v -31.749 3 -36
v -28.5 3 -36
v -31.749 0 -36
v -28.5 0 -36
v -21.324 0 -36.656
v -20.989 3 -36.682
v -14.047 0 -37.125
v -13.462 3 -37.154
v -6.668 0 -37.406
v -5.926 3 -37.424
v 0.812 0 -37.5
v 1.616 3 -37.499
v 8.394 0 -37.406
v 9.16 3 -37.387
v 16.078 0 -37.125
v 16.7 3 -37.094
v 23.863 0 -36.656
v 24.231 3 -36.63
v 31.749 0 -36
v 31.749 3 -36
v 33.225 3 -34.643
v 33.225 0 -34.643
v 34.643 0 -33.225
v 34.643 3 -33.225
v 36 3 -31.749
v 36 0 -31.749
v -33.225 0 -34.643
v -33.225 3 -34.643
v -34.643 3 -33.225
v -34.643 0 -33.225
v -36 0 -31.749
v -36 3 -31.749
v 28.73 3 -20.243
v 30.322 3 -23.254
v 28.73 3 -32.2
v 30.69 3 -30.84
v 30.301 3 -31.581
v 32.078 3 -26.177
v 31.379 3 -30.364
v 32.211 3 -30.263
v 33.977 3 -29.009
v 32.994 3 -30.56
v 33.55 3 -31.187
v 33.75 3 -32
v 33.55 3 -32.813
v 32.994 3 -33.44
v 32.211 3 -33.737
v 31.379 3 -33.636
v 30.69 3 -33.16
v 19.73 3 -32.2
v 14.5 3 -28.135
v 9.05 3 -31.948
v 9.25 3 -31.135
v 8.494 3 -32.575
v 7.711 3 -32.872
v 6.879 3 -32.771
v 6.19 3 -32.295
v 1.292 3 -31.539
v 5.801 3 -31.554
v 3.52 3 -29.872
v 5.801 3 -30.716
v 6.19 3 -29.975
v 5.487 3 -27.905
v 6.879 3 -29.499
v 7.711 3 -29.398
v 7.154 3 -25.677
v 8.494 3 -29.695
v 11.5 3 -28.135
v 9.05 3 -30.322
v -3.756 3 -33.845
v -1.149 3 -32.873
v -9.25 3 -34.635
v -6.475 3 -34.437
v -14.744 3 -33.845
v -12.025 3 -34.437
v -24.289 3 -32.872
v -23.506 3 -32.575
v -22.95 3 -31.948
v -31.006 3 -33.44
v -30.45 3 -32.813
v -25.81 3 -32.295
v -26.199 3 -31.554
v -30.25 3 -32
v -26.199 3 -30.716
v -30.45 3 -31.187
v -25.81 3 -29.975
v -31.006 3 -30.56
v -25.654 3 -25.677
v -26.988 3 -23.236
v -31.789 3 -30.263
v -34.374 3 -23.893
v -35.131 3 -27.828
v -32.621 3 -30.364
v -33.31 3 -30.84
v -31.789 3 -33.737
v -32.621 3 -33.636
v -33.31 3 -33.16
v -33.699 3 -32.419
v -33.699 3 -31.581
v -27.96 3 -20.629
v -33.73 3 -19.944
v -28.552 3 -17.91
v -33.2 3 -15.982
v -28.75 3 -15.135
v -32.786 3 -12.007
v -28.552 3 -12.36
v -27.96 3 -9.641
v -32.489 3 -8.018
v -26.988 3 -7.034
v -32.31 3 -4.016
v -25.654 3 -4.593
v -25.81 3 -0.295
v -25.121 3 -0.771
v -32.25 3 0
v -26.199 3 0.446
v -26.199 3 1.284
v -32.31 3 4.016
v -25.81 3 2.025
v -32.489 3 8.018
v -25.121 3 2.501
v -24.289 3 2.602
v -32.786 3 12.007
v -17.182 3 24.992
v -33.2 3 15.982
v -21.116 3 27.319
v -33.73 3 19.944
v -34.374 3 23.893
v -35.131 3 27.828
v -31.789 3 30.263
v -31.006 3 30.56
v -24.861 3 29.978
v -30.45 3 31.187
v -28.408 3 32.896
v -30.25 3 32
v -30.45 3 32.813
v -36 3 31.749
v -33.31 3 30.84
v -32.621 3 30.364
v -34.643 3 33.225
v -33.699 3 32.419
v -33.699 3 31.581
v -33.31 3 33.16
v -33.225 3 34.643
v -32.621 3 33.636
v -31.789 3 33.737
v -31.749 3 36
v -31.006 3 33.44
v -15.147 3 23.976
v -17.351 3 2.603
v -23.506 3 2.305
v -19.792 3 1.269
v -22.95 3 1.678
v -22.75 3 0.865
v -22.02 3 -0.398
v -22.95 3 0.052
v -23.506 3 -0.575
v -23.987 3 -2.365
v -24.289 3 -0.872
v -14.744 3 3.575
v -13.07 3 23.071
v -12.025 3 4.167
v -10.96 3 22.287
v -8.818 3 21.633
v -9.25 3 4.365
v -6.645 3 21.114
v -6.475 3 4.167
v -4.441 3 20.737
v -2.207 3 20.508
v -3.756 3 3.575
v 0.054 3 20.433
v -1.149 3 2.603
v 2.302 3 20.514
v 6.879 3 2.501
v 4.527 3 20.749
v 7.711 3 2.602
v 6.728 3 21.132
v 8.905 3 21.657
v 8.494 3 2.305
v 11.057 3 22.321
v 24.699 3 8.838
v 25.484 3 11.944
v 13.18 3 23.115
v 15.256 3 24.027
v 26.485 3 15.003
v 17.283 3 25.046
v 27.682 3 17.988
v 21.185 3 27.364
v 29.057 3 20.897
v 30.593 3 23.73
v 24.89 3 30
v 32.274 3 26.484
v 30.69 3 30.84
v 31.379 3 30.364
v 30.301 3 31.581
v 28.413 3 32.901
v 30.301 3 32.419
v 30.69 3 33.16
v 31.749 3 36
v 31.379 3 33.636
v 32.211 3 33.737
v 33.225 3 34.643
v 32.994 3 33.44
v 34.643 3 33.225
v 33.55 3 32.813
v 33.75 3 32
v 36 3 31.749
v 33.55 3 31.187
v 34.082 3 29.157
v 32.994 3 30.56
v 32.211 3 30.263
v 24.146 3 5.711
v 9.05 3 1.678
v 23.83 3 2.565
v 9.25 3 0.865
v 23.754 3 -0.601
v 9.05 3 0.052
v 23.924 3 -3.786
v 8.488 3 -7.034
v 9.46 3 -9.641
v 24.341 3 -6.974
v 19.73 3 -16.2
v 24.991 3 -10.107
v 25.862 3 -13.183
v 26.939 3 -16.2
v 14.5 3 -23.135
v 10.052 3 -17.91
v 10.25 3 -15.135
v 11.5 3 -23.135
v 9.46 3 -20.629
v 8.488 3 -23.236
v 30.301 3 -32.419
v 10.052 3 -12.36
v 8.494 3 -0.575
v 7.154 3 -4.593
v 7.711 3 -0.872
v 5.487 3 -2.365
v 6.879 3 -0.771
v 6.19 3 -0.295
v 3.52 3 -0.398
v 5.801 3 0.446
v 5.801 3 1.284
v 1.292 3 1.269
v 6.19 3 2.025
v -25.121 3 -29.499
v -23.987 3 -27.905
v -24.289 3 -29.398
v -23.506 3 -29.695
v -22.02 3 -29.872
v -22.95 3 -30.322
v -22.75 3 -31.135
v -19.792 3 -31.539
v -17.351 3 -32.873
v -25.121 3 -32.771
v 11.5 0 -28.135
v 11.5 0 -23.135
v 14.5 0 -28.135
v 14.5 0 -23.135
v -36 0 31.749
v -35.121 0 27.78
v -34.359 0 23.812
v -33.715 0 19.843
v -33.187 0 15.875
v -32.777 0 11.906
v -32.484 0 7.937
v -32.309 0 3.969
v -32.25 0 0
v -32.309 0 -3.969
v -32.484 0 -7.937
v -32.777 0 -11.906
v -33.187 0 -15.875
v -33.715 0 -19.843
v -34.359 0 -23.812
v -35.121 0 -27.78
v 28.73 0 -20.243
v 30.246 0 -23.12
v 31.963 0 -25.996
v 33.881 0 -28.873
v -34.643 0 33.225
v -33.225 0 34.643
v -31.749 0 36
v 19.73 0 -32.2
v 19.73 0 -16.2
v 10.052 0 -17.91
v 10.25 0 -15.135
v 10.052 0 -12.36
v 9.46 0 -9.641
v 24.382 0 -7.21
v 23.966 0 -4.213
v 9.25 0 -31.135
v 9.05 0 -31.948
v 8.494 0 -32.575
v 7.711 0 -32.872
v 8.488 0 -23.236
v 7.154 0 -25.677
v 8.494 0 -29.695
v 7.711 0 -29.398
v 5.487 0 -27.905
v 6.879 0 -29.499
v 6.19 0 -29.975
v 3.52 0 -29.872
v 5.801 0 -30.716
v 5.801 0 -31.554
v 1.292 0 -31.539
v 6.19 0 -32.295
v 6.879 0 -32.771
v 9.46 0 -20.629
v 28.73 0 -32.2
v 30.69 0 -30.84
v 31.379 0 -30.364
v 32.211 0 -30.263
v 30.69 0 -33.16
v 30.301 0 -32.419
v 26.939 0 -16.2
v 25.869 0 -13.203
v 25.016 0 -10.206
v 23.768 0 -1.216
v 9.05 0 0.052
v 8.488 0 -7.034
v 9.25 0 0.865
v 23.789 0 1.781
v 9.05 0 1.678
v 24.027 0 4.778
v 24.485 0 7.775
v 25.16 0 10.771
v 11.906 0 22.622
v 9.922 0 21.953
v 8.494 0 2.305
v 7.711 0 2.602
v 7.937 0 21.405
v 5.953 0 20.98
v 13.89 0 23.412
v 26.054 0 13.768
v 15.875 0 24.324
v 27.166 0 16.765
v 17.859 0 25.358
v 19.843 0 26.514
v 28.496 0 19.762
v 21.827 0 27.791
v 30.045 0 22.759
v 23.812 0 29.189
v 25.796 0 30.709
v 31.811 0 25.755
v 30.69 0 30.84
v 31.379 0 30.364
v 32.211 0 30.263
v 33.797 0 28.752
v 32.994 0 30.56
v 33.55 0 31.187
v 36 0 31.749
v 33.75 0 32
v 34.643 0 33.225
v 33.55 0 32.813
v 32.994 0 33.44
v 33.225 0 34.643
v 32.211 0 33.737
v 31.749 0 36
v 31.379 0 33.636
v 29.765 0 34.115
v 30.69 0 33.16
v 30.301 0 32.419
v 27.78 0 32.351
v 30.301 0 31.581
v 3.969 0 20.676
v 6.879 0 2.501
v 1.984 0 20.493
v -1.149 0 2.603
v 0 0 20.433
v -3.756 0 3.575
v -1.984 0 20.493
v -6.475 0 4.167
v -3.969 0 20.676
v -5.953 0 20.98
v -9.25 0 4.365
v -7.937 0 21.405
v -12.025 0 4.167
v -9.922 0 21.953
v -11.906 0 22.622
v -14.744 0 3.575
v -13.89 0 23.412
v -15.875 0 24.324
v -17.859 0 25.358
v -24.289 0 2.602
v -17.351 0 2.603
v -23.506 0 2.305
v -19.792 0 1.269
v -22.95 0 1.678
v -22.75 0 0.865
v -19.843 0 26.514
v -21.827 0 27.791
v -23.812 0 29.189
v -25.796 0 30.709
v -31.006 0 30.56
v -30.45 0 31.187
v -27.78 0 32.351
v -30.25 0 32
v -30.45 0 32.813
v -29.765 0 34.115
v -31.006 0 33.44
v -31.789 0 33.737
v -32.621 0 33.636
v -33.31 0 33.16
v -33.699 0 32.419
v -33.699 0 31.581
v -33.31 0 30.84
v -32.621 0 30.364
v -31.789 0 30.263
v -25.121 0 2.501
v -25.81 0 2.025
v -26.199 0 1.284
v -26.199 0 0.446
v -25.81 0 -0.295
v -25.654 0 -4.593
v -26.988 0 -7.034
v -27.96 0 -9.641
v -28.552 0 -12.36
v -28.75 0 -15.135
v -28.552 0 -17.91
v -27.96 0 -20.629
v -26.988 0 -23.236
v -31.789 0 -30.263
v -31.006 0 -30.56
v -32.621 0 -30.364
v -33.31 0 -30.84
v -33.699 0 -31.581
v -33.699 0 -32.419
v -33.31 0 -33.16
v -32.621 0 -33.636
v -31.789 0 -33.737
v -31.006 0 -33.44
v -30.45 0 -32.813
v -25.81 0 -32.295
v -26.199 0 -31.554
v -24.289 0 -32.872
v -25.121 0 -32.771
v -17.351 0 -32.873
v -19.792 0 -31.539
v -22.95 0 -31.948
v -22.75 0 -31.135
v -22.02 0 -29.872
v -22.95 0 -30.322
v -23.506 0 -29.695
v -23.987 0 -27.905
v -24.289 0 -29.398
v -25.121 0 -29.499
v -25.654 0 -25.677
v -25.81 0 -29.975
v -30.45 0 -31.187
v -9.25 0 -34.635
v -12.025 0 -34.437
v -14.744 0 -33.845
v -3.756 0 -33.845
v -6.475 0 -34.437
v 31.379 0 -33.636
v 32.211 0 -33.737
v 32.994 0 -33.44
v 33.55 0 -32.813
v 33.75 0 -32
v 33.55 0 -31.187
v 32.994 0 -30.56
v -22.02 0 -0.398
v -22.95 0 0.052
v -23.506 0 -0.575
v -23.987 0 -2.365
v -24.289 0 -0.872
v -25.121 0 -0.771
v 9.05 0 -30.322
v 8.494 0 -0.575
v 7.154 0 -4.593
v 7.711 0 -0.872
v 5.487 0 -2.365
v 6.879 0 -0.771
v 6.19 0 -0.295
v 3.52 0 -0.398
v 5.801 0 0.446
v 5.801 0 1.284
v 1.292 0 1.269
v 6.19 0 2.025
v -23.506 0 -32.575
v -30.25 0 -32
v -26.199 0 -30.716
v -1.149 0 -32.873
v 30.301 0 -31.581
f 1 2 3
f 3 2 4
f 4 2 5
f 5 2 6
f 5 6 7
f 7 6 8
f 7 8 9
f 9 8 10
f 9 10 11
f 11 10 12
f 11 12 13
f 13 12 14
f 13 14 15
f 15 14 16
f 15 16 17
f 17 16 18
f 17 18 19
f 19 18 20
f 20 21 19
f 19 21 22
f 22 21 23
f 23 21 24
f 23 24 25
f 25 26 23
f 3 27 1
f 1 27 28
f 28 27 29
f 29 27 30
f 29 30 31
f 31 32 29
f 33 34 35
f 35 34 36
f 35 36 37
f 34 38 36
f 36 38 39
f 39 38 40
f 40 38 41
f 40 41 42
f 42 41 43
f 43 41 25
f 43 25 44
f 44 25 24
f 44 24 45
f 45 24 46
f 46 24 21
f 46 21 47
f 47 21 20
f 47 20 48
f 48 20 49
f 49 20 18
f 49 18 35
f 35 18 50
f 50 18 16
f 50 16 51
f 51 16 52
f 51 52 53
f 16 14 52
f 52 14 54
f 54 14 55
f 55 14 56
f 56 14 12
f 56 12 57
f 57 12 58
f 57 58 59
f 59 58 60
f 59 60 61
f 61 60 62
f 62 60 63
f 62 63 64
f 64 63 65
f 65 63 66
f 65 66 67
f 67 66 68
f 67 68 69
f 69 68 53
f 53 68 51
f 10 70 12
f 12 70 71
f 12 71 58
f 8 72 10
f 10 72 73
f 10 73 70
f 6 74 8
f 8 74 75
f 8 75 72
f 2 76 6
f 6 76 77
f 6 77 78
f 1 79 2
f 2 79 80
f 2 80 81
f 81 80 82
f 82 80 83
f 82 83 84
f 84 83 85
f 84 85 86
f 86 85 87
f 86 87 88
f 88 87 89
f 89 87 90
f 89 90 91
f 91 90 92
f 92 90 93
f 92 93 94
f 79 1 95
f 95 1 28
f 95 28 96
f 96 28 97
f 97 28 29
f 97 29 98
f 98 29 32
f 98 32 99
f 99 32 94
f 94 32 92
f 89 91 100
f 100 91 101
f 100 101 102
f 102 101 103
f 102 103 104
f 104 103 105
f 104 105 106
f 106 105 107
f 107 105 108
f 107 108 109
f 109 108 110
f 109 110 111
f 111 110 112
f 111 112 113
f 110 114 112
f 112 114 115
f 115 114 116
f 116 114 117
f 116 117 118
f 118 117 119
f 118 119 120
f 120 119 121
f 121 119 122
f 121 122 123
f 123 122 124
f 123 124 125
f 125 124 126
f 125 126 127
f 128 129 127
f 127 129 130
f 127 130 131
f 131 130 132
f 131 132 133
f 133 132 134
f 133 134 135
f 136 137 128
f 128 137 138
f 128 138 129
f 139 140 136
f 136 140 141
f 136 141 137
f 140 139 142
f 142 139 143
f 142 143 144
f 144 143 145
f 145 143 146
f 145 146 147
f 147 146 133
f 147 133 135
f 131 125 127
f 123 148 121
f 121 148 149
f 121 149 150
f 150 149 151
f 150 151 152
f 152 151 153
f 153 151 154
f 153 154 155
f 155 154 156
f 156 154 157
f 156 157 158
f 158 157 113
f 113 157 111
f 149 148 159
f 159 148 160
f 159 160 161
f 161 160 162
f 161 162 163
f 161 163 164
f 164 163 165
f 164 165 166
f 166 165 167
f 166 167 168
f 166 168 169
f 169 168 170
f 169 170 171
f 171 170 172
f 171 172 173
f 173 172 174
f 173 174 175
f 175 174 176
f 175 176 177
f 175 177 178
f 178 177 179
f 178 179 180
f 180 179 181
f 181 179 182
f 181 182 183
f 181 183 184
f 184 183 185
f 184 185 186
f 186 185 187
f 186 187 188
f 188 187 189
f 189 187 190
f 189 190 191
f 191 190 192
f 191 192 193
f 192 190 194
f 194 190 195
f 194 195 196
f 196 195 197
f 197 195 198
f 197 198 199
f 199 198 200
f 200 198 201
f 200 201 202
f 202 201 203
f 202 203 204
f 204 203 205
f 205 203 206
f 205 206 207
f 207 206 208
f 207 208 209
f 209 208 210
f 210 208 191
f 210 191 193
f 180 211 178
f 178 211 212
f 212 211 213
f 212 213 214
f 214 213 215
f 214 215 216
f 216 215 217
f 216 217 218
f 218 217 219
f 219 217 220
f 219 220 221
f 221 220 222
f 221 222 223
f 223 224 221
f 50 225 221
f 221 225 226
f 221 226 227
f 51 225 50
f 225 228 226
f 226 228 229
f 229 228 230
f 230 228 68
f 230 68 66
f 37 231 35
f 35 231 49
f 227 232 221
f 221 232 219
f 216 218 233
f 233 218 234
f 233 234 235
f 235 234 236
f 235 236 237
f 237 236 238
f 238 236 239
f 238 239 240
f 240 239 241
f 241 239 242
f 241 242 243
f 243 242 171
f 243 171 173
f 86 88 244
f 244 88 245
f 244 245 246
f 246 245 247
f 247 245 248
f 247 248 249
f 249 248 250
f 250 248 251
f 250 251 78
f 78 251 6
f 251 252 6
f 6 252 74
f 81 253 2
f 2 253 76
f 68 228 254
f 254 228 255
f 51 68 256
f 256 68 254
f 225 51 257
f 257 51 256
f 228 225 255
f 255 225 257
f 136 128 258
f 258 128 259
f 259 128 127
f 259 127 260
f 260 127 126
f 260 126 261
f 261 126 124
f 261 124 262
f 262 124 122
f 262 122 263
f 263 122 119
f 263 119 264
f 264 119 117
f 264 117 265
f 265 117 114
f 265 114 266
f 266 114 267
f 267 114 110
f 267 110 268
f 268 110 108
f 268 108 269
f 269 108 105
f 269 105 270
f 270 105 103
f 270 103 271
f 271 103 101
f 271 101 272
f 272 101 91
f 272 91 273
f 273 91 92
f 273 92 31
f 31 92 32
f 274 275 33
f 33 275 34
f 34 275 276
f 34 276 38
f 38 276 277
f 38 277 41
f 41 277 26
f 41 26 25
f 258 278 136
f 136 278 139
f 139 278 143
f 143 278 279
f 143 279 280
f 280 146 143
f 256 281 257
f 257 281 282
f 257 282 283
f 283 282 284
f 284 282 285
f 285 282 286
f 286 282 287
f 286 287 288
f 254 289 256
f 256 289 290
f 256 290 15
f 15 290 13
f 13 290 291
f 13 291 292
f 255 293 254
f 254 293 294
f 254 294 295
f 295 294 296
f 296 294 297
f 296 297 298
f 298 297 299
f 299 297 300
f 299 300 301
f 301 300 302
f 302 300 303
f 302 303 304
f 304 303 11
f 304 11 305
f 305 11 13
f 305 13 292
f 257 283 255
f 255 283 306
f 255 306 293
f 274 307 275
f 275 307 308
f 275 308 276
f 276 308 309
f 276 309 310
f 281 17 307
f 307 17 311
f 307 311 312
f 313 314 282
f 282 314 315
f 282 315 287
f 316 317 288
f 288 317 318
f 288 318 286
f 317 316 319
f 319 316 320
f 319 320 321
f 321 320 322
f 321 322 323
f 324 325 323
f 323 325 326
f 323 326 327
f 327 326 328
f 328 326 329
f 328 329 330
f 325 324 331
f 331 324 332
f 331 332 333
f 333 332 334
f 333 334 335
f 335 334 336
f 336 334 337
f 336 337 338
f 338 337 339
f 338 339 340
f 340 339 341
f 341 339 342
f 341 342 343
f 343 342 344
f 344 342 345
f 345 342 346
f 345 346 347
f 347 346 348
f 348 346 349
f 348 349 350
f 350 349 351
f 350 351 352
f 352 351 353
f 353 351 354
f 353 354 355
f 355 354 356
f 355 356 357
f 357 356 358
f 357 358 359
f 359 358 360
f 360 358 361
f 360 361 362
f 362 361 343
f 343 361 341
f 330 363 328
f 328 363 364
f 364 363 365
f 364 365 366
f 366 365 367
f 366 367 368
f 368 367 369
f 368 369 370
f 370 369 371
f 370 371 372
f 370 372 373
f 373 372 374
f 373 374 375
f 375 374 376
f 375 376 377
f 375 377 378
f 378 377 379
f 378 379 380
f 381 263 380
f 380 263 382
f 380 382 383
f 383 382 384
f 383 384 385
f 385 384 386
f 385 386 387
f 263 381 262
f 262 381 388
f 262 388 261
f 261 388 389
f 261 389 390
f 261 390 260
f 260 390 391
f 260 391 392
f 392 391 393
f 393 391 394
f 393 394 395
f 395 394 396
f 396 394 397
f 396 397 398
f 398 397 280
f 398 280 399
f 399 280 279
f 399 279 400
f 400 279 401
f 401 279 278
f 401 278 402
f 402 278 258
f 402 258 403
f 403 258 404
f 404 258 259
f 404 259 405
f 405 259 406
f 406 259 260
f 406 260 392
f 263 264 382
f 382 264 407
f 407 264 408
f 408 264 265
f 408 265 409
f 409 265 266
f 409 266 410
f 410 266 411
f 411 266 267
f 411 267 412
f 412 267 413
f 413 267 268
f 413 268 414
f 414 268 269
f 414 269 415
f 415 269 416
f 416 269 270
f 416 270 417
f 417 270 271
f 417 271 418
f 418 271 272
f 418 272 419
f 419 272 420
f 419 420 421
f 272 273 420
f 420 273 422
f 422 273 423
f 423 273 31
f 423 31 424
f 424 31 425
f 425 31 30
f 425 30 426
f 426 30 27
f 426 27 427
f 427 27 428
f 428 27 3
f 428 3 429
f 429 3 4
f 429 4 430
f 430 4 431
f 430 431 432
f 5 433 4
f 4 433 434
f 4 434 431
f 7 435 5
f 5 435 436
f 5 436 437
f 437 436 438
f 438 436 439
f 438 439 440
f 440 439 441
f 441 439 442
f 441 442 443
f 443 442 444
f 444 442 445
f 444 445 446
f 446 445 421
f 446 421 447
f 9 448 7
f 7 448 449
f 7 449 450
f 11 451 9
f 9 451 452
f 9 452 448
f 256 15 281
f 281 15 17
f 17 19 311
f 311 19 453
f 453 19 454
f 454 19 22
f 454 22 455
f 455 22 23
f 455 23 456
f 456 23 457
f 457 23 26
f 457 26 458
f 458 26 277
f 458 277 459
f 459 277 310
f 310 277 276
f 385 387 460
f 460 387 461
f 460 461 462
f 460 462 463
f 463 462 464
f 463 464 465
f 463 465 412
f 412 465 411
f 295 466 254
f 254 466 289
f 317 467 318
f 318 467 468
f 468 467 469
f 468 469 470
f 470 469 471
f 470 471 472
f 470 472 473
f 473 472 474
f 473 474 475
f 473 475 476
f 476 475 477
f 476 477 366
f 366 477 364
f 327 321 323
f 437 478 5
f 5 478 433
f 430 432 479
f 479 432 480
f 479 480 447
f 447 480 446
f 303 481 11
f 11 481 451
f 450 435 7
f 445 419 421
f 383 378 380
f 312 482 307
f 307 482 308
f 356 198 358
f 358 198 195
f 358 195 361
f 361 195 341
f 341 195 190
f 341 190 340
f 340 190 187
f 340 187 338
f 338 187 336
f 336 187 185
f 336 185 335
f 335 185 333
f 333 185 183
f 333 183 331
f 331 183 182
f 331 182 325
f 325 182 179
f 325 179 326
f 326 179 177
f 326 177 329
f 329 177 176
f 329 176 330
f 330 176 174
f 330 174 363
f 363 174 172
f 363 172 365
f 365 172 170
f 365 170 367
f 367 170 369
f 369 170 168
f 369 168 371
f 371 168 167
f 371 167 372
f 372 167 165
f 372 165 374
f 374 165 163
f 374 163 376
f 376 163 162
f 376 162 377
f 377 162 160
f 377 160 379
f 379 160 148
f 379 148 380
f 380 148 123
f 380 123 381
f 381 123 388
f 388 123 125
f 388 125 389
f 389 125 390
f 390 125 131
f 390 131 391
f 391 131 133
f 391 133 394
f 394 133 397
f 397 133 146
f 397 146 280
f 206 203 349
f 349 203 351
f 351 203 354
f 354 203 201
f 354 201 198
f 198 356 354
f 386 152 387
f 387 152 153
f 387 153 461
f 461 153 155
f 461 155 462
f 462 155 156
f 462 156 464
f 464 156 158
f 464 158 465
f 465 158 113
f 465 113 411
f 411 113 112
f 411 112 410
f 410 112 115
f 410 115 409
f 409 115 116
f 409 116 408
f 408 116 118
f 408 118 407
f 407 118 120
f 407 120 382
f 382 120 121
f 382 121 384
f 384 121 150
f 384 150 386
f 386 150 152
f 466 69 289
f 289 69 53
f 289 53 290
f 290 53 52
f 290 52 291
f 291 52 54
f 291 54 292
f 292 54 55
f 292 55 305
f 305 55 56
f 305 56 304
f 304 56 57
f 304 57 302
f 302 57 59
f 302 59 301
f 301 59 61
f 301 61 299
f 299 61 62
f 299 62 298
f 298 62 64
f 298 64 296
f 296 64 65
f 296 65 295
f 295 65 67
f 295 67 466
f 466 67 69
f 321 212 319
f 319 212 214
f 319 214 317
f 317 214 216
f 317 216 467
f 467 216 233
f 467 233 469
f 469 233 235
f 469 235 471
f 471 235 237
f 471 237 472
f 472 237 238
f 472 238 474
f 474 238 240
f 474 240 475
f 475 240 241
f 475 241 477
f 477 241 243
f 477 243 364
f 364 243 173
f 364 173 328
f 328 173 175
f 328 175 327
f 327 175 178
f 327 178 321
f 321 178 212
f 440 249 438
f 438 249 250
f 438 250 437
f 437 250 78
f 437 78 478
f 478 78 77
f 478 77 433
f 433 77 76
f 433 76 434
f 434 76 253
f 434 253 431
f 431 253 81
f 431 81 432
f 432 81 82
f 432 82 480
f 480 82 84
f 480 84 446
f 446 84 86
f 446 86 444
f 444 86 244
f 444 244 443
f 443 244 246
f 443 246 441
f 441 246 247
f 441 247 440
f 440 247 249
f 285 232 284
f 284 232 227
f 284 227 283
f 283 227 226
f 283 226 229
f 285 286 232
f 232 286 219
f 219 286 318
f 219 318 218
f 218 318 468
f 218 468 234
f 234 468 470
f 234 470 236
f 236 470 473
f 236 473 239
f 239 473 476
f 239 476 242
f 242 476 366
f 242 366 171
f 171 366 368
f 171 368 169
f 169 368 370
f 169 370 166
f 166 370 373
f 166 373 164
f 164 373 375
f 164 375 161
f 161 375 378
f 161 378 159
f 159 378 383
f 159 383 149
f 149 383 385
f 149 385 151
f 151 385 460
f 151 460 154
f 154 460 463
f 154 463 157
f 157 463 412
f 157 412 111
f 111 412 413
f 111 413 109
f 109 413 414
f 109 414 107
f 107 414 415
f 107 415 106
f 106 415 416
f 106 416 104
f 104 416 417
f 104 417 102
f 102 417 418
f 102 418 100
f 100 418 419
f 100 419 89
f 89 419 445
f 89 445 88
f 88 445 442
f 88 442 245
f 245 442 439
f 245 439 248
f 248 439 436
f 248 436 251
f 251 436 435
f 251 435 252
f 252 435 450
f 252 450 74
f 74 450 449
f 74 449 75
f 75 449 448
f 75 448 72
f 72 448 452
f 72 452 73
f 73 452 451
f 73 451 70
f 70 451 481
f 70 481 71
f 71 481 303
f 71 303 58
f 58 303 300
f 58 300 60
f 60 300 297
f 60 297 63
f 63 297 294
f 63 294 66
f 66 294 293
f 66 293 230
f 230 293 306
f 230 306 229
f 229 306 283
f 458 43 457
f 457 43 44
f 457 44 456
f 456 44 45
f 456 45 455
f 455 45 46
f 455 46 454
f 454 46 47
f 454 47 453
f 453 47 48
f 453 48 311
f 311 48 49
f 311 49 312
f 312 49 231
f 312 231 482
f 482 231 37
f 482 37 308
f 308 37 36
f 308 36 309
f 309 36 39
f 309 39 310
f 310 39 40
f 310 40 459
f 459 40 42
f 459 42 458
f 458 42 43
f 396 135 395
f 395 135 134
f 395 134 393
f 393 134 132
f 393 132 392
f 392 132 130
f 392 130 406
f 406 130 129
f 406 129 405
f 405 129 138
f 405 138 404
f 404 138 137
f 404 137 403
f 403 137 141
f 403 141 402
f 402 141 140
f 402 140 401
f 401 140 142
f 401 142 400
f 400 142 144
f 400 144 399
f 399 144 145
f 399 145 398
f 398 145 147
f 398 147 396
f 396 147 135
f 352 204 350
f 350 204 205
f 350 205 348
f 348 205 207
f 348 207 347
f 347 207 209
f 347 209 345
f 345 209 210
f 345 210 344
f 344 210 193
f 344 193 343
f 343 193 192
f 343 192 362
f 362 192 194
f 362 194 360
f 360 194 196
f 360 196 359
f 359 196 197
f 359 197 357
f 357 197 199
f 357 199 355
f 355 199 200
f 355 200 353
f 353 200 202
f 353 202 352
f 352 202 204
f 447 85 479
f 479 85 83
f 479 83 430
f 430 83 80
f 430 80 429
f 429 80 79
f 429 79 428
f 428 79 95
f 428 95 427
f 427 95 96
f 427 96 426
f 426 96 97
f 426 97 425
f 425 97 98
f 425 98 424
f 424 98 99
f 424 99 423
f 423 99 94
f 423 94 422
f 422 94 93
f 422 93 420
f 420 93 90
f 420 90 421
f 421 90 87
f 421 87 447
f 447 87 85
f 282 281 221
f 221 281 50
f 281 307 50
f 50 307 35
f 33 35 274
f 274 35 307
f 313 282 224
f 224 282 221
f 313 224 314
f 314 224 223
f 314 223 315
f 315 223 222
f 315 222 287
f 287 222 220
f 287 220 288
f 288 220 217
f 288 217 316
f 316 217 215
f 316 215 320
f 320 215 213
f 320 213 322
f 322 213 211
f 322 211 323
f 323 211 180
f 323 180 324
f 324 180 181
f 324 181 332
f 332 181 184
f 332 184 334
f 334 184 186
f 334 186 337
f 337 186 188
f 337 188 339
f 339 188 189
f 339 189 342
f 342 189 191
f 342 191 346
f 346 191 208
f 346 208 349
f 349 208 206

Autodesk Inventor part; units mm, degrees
ref_plane "YZ Plane" through (0, 0, 0) normal (1, 0, 0) x (0, 1, 0)
ref_plane "XZ Plane" through (0, 0, 0) normal (0, 1, 0) x (-1, 0, 0)
ref_plane "XY Plane" through (0, 0, 0) normal (0, 0, 1) x (1, 0, 0)
sketch "Sketch1" plane through (0, 0, 0) normal (0, 1, 0) x (-1, 0, 0)
  circle A0 centre (0, 0) radius 48
  dimension "d0" = 96
extrude "Extrusion1" add sketch "Sketch1" along normal blind 3
sketch "Sketch2" plane through (0, 3, 0) normal (0, 1, 0) x (1, 0, 0)
  circle A0 centre (-32, -32) radius 1.75
  line L0 (0, 0) -> (-48, 0)
  circle A1 centre (0, 0) radius 48 projected
  line L1 (0, 0) -> (0, -48)
  circle A2 centre (32, -32) radius 1.75
  circle A3 centre (32, 32) radius 1.75
  circle A4 centre (-32, 32) radius 1.75
  dimension "d3" = 3.5
  dimension "d4" = 32
  dimension "d5" = 32
  dimension "d8" = 360
extrude "Extrusion2" cut sketch "Sketch2" against normal blind 30 contours A0 | A2 | A3 | A4
sketch "Sketch3" plane through (0, 3, 0) normal (0, 1, 0) x (1, 0, 0)
  circle A0 centre (-32, 32) radius 1.75 projected
  line L0 (-30.25, 32) -> (-9.25, 32)
  circle A1 centre (0, 0) radius 48 projected
  line L1 (-9.25, 32) -> (-9.25, 15.135)
  line L2 (10.25, -4.365) -> (-28.75, 34.635) construction
  line L3 (-28.75, -4.365) -> (10.25, 34.635) construction
  circle A2 centre (-9.25, 15.135) radius 19.5
  dimension "d12" = 32
  dimension "d13" = 21
  dimension "d14" = 16.865
  dimension "d17" = 39
extrude "Extrusion3" cut sketch "Sketch3" against normal blind 5 contours A2
sketch "Sketch4" plane through (0, 0, 0) normal (0, -1, 0) x (1, 0, 0)
  line L0 (-29.25, 4.865) -> (10.75, 4.865)
  line L1 (10.75, 4.865) -> (10.75, -35.135)
  line L2 (10.75, -35.135) -> (-29.25, -35.135)
  line L3 (-29.25, -35.135) -> (-29.25, 4.865)
  circle A0 centre (-9.25, -15.135) radius 19.5 projected
  line L4 (-29.25, 4.865) -> (10.75, -35.135) construction
  line L5 (10.75, 4.865) -> (-29.25, -35.135) construction
  point P0 (0, 0)
  dimension "d20" = 40
  dimension "d21" = 40
ref_plane "Work Plane1" through (0, 3, 0) normal (0, -1, 0) x (1, 0, 0)
sketch "Sketch5" plane through (0, 3, 0) normal (0, -1, 0) x (1, 0, 0)
  circle A0 centre (7.5, -31.135) radius 1.75
  line L0 (11.5, -35.135) -> (-28.5, -35.135) projected
  line L1 (11.5, 4.865) -> (11.5, -35.135) projected
  circle A1 centre (-8.5, -15.135) radius 19.5 projected
  circle A2 centre (-8.5, -15.135) radius 19.5
  circle A3 centre (7.5, 0.865) radius 1.75
  circle A4 centre (-24.5, 0.865) radius 1.75
  circle A5 centre (-24.5, -31.135) radius 1.75
  point P0 (0, 0)
  dimension "d24" = 3.5
  dimension "d25" = 4
  dimension "d26" = 4
  dimension "d27" = 39
  dimension "d30" = 360
extrude "Extrusion5" cut sketch "Sketch5" along normal blind 3 contours A0 | A3 | A4 | A5
sketch "Sketch7" plane through (0, 0, 0) normal (0, -1, 0) x (1, 0, 0)
  line L0 (0, 0) -> (0, 36)
  line L1 (0, 36) -> (-31.749, 36)
  circle A0 centre (0, 0) radius 48 projected
  line L2 (0, 36) -> (31.749, 36)
  line L3 (-28.5, 4.865) -> (11.5, 4.865) projected
  line L4 (31.749, 36) -> (0, 4.865) construction
  line L5 (0, 4.865) -> (-31.749, 36) construction
  spline S0 degree 2 poles (31.749, 36) (0, 4.865) (-31.749, 36) knots 1 1 1 2 2 2
  dimension "d52" = 36
extrude "Extrusion7" cut sketch "Sketch7" against normal blind 5 contours S0 L1 L0 | L0 L2 S0 | L1 A0 L2
sketch "Sketch8" plane through (0, 0, 0) normal (0, -1, 0) x (1, 0, 0)
  line L0 (0, 0) -> (36, 0)
  line L1 (36, 0) -> (36, -31.749)
  arc A0 (-31.749, 36) -> (31.749, 36) centre (0, 0) ccw projected
  line L2 (36, 0) -> (36, 31.749)
  line L3 (11.5, 4.865) -> (11.5, -35.135) projected
  line L4 (36, -31.749) -> (11.5, 0) construction
  line L5 (11.5, 0) -> (36, 31.749) construction
  spline S0 degree 2 poles (36, -31.749) (11.5, 0) (36, 31.749) knots 1 1 1 2 2 2
  dimension "d55" = 36
extrude "Extrusion8" cut sketch "Sketch8" against normal blind 5
sketch "Sketch9" plane through (0, 0, 0) normal (0, -1, 0) x (1, 0, 0)
  line L0 (0, 0) -> (-36, 0)
  line L1 (-36, 0) -> (-36, 31.749)
  arc A0 (-31.749, 36) -> (36, -31.749) centre (0, 0) ccw projected
  line L2 (-36, 0) -> (-36, -31.749)
  line L3 (-28.5, -35.135) -> (-28.5, 4.865) projected
  line L4 (-36, 31.749) -> (-28.5, 0) construction
  line L5 (-28.5, 0) -> (-36, -31.749) construction
  spline S0 degree 2 poles (-36, 31.749) (-28.5, 0) (-36, -31.749) knots 1 1 1 2 2 2
  dimension "d58" = 36
extrude "Extrusion9" cut sketch "Sketch9" against normal blind 5
sketch "Sketch10" plane through (0, 0, 0) normal (0, -1, 0) x (1, 0, 0)
  line L0 (0, 0) -> (0, -36)
  line L1 (0, -36) -> (-31.749, -36)
  line L2 (0, -36) -> (31.749, -36)
  line L3 (11.5, 4.865) -> (11.5, -35.135) projected
  arc A0 (-36, -31.749) -> (36, -31.749) centre (0, 0) ccw projected
  line L4 (-28.5, -36) -> (-28.5, -38.6232)
  line L5 (-28.5, -35.135) -> (-28.5, 4.865) projected
  line L6 (0, -36) -> (0, -39)
  line L7 (31.749, -36) -> (0, -39) construction
  line L8 (0, -39) -> (-28.5, -36) construction
  spline S0 degree 2 poles (31.749, -36) (0, -39) (-28.5, -36) knots 1 1 1 2 2 2
  arc A1 (-31.749, -36) -> (31.749, -36) centre (0, 0) ccw
  dimension "d61" = 36
  dimension "d69" = 31.749
  dimension "d71" = 2.6232
  dimension "d72" = 3
sketch "Sketch11" plane through (0, 0, 0) normal (0, -1, 0) x (1, 0, 0)
  line L0 (11.5, 4.865) -> (11.5, -35.135) projected
  line L1 (11.5, -35.135) -> (11.5, -28.135)
  line L2 (11.5, -28.135) -> (14.5, -28.135)
  line L3 (14.5, -28.135) -> (14.5, -23.135)
  line L4 (14.5, -23.135) -> (11.5, -23.135)
  line L5 (11.5, -23.135) -> (11.5, -28.135)
  point P0 (0, 0)
  dimension "d64" = 7
  dimension "d65" = 3
  dimension "d66" = 5
extrude "Extrusion11" cut sketch "Sketch11" against normal blind 5
extrude "Extrusion12" cut sketch "Sketch10" against normal blind 5 contours L4 A0 L1 | S0 A0 L4
sketch "Sketch13" plane through (0, 0, 0) normal (0, -1, 0) x (1, 0, 0)
  circle A0 centre (32, -32) radius 1.75 projected
  line L0 (32, -32) -> (28.23, -32)
  line L1 (28.23, -32) -> (28.23, -24.2)
  line L2 (28.23, -24.2) -> (24.23, -24.2)
  line L3 (19.73, -16.2) -> (28.73, -16.2)
  line L4 (28.73, -16.2) -> (28.73, -32.2)
  line L5 (28.73, -32.2) -> (19.73, -32.2)
  line L6 (19.73, -32.2) -> (19.73, -16.2)
  line L7 (19.73, -16.2) -> (28.73, -32.2) construction
  line L8 (28.73, -16.2) -> (19.73, -32.2) construction
  point P0 (0, 0)
  dimension "d82" = 3.77
  dimension "d83" = 7.8
  dimension "d84" = 4
  dimension "d85" = 9
  dimension "d86" = 16
extrude "Extrusion14" cut sketch "Sketch13" against normal blind 3 contours L3 L4 L5 L6
properties part number "Fan_Mount"
